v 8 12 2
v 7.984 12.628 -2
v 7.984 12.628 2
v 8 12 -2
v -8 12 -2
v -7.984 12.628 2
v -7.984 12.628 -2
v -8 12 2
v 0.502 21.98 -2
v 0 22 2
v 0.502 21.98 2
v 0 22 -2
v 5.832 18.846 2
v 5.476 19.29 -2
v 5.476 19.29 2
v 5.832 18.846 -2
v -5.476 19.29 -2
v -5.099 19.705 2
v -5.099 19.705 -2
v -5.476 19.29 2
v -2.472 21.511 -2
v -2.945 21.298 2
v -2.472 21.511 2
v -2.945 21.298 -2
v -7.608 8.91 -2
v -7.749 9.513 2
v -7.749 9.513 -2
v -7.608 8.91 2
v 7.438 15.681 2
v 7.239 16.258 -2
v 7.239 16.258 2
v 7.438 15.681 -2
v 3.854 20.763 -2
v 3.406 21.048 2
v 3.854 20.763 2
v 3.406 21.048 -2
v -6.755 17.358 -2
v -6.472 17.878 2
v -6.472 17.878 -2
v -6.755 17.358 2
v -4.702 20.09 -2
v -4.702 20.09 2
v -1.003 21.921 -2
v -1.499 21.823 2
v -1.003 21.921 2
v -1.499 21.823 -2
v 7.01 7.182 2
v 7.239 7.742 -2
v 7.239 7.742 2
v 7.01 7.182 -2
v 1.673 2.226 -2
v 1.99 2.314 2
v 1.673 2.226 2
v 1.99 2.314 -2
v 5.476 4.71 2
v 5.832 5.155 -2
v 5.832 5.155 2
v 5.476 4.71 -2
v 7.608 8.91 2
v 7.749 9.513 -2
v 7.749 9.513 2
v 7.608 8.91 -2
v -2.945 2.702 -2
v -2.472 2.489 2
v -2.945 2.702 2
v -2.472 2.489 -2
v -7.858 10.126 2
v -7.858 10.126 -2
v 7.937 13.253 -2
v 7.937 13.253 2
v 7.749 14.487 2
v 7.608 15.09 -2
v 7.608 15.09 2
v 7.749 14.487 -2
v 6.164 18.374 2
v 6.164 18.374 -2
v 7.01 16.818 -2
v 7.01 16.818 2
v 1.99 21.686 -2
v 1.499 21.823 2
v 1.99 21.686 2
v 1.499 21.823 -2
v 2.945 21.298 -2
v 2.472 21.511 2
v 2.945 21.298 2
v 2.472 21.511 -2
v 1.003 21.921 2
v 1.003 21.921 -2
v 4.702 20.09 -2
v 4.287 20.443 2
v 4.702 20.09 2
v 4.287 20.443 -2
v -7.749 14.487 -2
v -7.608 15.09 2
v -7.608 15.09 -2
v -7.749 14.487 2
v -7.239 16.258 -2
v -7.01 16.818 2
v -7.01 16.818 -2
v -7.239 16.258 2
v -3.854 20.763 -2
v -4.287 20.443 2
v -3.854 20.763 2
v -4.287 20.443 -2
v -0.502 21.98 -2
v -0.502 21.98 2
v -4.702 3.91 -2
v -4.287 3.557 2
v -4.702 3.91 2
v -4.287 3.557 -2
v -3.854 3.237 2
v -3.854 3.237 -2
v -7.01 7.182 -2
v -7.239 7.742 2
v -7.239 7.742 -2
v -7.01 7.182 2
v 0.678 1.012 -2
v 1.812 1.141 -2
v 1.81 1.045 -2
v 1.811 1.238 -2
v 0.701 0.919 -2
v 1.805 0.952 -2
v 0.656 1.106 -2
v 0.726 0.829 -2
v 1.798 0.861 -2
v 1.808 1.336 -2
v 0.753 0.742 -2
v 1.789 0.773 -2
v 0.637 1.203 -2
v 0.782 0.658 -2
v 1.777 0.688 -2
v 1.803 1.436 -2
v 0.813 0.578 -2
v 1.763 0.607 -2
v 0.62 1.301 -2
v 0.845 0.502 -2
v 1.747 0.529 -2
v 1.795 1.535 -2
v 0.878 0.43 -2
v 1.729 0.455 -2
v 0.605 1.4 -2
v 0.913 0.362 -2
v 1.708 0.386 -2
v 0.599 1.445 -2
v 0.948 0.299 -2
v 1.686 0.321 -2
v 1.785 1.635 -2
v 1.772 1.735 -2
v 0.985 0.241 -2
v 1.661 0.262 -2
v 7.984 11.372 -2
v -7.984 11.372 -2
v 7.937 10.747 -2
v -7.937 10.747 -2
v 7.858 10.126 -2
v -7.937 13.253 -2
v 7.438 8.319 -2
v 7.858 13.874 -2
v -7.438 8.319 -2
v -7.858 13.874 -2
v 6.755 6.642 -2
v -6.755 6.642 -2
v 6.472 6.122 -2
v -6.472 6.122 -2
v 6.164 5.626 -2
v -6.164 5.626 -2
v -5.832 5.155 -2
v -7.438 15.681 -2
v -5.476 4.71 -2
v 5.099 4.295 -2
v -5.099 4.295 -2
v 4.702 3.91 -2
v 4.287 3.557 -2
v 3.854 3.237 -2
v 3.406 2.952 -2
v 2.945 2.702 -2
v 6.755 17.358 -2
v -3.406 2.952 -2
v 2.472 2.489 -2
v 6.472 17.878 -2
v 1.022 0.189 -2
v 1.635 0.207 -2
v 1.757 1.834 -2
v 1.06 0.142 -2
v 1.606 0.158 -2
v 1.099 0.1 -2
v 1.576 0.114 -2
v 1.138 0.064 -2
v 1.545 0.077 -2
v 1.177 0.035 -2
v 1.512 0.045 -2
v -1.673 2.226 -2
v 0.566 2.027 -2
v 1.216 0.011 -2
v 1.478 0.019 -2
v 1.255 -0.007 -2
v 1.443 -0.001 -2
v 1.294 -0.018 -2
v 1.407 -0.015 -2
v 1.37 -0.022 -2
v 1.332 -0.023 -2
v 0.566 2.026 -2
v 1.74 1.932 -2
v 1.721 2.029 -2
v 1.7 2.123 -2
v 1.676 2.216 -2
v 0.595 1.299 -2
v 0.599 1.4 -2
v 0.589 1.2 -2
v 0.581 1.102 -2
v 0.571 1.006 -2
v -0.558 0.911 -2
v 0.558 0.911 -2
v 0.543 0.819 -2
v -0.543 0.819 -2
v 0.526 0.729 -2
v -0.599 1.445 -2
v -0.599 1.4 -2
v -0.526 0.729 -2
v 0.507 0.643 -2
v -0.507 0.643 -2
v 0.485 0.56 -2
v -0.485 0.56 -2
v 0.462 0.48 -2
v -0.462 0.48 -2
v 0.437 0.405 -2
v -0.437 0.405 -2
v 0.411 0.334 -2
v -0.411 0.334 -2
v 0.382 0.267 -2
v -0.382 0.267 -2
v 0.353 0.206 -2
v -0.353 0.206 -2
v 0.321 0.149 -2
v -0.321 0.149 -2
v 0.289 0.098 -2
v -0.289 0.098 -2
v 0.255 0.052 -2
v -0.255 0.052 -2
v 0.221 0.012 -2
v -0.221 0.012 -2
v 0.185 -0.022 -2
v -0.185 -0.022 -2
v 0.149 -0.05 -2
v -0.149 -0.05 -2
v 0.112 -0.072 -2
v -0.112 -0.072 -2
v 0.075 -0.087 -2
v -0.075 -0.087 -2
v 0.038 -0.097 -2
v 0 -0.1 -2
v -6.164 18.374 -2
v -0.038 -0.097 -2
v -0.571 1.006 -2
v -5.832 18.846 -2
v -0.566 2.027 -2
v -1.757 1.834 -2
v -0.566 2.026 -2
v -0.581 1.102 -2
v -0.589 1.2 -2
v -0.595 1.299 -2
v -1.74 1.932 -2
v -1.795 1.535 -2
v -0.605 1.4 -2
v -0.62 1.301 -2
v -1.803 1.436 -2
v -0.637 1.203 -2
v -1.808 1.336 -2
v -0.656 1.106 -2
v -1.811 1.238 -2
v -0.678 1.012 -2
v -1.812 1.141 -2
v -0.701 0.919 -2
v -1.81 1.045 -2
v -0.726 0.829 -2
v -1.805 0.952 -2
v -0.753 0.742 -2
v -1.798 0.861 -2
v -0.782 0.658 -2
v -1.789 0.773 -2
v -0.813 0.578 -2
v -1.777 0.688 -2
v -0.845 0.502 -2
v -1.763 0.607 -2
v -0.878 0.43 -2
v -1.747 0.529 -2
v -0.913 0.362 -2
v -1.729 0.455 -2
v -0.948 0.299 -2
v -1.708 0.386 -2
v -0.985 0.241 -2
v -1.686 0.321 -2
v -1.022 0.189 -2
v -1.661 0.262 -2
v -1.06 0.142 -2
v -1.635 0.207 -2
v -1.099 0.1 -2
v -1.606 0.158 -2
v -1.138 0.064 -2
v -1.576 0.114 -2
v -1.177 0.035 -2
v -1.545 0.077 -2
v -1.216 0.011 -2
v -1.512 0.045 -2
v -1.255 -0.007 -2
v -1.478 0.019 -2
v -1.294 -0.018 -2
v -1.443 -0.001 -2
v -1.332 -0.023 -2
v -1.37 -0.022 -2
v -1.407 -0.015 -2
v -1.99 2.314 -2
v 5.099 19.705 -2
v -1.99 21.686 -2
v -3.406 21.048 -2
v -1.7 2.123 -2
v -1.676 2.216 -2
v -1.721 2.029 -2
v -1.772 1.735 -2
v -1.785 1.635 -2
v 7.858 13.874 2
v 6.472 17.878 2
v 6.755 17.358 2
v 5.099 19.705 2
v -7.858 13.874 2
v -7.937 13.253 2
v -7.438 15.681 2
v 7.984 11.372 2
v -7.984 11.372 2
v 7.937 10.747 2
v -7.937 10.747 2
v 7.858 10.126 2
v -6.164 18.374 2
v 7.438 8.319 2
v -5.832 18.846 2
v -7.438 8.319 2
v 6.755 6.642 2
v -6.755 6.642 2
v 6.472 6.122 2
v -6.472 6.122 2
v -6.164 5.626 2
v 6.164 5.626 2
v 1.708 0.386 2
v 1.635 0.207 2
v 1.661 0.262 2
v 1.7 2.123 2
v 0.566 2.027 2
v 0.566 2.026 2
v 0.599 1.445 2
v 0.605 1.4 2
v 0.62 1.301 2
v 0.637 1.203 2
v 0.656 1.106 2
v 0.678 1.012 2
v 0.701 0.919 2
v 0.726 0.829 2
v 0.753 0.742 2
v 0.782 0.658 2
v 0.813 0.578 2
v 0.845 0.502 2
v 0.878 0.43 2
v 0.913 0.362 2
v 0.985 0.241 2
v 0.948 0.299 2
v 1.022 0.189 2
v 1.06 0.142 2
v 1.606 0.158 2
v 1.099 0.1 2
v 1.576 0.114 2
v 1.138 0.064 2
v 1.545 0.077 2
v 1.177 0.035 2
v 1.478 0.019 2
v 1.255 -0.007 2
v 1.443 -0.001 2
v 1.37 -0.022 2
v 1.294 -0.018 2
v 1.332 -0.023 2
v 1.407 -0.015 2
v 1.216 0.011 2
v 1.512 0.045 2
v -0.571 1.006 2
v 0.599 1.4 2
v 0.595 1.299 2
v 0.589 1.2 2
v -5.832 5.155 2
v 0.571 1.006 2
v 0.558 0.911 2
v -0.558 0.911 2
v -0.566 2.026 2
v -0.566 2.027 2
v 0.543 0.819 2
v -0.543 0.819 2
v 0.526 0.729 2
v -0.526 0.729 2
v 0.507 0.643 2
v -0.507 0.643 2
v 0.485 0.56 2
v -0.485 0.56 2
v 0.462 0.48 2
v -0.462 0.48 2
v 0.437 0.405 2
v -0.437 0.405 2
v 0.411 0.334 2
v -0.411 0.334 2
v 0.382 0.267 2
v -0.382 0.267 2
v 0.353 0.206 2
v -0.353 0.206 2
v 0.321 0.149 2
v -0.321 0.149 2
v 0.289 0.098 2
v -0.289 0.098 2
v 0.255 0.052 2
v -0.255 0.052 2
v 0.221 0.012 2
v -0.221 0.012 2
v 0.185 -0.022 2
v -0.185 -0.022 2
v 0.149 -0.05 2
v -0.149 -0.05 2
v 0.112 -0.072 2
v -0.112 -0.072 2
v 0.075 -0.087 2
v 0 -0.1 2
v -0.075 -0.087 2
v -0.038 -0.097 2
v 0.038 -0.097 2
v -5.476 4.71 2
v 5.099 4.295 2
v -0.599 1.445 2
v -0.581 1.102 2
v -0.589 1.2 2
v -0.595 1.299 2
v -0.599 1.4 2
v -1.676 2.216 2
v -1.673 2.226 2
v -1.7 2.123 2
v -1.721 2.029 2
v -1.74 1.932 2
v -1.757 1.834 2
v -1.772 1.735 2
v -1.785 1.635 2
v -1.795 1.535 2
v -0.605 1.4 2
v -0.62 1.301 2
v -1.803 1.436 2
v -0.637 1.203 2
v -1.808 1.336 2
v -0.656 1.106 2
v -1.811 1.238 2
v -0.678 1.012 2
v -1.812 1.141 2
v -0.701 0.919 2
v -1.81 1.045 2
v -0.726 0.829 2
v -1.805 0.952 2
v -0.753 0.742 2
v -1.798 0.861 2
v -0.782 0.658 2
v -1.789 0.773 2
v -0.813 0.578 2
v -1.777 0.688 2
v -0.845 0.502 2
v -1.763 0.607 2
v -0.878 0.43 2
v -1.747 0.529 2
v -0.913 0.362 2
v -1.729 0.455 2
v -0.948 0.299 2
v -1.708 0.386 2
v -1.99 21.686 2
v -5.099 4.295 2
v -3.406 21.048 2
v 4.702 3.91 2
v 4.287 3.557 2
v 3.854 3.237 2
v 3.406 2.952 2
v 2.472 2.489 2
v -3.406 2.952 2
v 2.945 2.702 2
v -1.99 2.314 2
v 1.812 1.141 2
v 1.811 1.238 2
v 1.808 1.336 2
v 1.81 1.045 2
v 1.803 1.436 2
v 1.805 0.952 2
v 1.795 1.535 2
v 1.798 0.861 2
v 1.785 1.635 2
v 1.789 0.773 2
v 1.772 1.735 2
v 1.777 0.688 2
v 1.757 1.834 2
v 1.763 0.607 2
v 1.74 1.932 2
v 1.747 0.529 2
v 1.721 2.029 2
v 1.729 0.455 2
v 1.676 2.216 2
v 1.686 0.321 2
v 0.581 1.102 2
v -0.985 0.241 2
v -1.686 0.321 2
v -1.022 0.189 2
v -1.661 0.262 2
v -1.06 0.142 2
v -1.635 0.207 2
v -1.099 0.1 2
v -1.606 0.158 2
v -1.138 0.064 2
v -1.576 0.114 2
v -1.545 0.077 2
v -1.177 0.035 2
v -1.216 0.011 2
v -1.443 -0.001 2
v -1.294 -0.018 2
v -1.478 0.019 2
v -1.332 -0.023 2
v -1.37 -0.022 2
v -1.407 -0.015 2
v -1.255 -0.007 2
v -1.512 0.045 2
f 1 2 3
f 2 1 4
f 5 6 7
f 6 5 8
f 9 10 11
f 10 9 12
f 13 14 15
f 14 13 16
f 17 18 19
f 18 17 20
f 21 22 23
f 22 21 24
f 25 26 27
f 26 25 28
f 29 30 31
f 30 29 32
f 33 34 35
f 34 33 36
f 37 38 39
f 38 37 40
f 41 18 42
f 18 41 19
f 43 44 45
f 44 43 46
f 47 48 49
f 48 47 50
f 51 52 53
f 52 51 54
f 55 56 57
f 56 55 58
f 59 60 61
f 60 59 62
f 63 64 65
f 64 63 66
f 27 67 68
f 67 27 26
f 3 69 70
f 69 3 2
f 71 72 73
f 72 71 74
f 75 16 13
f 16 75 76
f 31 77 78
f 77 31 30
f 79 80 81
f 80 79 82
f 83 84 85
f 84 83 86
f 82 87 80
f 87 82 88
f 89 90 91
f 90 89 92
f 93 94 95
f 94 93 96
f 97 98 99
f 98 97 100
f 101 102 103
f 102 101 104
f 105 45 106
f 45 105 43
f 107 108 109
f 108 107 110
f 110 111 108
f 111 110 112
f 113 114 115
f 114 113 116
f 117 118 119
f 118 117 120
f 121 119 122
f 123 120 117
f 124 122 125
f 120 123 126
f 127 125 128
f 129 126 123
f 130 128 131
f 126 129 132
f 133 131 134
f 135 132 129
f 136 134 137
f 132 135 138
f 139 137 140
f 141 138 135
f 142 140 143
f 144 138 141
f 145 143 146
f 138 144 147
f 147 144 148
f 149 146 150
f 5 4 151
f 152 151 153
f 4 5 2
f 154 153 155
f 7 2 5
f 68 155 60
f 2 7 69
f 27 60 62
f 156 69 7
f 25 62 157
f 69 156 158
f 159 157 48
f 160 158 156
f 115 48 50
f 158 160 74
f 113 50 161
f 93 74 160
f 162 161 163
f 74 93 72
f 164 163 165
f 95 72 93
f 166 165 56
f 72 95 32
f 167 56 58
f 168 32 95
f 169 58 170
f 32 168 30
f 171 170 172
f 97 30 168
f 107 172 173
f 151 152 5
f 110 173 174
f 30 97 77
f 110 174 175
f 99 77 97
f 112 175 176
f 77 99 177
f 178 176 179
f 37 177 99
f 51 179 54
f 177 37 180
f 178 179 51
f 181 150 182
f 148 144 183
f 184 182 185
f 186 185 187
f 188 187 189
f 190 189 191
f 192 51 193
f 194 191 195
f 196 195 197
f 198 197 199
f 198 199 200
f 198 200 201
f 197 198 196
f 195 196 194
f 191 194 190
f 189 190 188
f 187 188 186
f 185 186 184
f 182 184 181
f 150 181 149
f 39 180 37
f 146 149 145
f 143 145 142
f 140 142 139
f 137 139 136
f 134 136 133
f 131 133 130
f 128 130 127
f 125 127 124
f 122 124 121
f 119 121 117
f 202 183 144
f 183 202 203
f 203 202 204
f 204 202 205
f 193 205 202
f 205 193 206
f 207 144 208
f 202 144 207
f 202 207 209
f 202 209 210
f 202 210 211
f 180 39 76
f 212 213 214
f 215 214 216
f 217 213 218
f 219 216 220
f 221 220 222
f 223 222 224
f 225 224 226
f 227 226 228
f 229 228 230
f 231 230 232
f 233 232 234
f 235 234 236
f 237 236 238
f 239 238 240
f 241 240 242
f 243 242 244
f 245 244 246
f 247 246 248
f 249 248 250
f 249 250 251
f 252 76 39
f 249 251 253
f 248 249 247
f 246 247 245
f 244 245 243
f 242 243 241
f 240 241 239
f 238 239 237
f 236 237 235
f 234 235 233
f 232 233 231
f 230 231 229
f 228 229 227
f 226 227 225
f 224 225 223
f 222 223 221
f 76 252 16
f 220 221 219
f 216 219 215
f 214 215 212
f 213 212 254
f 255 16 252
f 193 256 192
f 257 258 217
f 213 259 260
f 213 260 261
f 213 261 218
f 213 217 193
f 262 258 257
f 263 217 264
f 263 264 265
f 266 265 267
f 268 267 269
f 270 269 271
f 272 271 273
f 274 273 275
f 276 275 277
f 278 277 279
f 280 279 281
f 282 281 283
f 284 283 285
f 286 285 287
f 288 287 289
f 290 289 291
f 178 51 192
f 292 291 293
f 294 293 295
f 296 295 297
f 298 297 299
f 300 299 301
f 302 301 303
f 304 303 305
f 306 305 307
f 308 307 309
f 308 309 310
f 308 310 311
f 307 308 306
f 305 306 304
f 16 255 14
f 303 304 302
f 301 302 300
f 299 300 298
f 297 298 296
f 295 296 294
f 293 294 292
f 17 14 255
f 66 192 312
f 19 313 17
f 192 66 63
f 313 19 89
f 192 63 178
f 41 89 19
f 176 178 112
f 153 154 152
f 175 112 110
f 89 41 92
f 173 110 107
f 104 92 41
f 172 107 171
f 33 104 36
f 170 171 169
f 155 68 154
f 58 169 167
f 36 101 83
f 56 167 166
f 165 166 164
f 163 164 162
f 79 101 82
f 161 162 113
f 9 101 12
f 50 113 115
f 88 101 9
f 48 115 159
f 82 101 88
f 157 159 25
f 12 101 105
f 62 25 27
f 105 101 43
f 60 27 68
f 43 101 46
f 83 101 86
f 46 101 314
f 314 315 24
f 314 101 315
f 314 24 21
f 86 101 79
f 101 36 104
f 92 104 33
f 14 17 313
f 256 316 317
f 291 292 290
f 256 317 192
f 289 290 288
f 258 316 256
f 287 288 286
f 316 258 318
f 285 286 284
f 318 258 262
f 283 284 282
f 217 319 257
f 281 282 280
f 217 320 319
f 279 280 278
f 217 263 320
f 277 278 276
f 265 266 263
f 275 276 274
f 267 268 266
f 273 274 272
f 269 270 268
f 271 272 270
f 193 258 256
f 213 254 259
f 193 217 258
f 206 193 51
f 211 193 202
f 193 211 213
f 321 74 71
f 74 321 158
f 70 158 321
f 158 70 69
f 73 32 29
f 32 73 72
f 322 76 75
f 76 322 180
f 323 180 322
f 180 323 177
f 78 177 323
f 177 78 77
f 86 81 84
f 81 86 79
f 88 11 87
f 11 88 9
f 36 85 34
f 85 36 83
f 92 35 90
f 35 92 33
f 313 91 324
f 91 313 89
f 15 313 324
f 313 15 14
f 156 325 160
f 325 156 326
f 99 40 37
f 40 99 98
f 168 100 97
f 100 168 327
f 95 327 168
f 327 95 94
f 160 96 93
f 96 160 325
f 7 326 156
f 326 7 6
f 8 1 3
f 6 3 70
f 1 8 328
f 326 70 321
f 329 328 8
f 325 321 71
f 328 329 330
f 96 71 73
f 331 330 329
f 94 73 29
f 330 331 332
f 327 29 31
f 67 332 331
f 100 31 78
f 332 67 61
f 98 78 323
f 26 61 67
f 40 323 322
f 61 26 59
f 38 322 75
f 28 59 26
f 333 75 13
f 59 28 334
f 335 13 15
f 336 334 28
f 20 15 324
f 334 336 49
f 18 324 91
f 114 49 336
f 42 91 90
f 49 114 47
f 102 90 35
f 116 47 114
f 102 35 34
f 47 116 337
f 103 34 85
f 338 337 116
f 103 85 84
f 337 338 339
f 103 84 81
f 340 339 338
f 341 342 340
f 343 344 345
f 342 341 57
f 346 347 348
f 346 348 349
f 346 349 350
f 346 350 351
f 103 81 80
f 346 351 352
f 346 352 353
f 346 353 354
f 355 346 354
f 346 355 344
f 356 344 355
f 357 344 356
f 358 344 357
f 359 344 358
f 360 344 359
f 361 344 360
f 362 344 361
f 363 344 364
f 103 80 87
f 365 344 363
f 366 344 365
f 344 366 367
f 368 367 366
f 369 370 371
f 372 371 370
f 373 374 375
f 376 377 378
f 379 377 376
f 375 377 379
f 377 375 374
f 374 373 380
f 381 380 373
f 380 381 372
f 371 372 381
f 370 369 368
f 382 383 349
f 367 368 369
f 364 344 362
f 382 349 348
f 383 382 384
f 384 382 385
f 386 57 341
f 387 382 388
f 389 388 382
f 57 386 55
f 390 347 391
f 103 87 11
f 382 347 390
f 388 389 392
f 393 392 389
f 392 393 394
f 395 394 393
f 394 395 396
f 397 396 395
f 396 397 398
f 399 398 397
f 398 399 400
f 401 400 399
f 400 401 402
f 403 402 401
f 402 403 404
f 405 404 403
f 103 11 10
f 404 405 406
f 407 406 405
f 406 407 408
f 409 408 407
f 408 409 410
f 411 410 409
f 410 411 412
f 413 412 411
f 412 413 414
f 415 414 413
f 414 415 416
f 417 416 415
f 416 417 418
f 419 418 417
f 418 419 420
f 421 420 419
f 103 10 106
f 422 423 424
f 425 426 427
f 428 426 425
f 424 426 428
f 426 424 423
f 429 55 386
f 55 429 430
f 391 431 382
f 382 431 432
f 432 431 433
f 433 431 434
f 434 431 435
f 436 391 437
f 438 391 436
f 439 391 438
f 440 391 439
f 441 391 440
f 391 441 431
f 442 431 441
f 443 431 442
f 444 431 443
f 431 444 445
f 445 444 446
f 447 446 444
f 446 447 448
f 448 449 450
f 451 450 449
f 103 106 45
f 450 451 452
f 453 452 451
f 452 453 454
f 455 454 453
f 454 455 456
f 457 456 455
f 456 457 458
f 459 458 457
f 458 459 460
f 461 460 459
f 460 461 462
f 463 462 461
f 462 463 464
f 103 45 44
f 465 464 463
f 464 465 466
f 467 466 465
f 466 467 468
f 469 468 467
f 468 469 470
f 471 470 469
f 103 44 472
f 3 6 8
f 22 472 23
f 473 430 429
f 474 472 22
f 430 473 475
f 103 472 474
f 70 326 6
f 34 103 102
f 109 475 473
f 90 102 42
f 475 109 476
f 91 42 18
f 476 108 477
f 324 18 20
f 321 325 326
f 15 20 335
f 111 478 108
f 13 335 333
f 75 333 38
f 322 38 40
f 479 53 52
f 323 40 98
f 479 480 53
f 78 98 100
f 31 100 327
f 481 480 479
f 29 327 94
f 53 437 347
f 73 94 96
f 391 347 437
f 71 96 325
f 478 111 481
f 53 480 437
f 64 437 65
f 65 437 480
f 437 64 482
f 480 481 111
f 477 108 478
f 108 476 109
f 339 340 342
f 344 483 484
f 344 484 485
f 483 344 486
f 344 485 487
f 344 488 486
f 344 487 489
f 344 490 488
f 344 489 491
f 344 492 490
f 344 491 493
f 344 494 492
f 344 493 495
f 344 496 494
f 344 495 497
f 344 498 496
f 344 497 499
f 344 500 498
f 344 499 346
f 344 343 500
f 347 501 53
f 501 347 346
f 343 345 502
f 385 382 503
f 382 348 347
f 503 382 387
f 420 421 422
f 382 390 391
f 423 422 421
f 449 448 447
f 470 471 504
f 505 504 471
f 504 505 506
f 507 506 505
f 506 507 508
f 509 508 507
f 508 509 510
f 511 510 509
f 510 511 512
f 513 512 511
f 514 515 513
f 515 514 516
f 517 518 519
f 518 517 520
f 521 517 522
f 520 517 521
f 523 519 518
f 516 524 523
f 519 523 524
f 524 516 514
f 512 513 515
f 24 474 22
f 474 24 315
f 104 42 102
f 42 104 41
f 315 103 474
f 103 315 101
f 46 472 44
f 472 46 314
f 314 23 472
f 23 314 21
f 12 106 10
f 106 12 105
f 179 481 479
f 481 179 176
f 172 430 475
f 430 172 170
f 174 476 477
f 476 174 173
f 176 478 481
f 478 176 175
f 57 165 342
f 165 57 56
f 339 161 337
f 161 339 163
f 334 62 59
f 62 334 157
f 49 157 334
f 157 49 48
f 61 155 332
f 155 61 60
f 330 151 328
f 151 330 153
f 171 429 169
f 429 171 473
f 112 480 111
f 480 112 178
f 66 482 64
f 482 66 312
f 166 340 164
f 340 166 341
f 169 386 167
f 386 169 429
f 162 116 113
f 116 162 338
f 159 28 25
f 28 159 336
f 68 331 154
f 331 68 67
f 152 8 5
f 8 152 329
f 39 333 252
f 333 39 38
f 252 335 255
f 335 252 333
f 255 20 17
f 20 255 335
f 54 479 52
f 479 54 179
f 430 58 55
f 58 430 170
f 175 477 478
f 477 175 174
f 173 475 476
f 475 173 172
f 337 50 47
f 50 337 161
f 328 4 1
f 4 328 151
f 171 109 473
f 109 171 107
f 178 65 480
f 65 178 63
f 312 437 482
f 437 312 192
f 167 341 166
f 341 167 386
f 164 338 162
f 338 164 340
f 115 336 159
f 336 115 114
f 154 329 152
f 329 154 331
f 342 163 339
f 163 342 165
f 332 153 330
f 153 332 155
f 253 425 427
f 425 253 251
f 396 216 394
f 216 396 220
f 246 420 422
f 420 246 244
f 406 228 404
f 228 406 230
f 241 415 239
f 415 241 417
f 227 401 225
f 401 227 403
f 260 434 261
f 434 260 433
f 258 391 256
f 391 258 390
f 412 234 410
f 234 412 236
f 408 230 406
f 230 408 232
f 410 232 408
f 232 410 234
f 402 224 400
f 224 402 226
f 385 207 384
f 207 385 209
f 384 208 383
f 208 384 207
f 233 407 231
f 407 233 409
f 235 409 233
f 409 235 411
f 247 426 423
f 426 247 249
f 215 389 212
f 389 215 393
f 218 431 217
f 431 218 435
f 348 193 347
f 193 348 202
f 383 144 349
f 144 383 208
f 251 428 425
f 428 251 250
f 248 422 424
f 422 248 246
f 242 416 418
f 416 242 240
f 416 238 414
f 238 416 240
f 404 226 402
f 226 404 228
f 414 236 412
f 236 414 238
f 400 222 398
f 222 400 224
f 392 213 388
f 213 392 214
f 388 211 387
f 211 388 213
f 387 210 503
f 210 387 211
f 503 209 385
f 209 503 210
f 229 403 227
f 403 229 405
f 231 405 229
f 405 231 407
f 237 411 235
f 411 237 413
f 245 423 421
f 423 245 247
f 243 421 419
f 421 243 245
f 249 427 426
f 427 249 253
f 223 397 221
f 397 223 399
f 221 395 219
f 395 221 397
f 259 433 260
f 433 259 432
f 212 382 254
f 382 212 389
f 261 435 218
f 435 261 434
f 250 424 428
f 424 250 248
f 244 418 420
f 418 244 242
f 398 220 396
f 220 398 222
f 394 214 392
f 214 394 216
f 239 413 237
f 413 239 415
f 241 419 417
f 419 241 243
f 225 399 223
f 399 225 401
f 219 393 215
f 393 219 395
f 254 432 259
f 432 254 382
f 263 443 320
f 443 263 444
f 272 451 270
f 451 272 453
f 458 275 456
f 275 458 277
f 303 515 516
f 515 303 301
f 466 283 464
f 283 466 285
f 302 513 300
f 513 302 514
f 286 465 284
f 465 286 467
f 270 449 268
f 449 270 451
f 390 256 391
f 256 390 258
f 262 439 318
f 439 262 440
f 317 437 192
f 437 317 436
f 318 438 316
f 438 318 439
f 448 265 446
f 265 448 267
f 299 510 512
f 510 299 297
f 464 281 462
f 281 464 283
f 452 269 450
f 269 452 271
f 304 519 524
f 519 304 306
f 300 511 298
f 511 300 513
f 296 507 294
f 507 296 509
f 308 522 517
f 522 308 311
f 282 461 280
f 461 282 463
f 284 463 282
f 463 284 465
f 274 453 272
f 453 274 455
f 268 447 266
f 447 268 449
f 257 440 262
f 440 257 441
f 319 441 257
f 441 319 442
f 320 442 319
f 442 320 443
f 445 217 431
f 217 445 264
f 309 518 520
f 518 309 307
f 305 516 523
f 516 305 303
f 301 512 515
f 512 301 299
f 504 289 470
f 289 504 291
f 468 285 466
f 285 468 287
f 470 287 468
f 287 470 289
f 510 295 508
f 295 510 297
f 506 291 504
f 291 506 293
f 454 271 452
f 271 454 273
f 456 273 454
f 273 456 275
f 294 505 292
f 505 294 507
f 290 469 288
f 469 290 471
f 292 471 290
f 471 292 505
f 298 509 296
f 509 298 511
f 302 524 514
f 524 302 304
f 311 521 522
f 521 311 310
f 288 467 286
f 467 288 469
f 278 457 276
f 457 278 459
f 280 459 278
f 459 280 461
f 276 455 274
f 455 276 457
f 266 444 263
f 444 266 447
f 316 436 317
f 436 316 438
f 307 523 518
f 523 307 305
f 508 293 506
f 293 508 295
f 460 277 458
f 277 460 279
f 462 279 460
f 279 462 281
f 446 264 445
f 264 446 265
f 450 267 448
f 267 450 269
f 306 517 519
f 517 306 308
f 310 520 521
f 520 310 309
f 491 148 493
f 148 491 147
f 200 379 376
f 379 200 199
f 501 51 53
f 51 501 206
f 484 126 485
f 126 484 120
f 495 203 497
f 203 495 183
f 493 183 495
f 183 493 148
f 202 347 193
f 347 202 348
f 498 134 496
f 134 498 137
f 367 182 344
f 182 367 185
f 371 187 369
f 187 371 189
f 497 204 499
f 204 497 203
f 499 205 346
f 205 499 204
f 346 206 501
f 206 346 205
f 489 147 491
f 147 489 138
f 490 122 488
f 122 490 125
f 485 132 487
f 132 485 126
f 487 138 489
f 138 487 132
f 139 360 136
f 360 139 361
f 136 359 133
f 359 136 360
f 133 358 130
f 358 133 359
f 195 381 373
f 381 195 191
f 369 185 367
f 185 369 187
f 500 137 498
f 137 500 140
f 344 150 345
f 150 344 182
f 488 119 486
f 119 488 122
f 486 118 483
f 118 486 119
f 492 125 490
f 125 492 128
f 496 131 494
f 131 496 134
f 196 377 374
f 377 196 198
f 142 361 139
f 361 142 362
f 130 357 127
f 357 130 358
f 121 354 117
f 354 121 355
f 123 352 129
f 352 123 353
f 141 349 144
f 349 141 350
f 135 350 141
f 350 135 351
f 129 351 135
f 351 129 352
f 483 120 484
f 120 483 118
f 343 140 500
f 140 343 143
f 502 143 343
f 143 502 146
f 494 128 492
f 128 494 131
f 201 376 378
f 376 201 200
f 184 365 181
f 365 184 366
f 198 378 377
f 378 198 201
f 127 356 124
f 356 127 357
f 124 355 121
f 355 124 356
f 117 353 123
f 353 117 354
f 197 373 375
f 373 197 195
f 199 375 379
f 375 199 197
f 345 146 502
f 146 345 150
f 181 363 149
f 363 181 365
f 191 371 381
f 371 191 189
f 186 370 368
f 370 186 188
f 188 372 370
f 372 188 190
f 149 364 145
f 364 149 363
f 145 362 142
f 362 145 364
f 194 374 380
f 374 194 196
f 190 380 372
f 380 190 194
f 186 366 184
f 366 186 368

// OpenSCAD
module balloon()
{
	union () 
	{
		// balloon
		scale ([0.8, 1, 1]) 
		cylinder (h = 4, r=10, center = true, $fn=100);
		
		// middle knot piece
		knotPiece();

		// left knot piece
		rotate ([0, 0, -6.5])
		knotPiece();
		
		// right knot piece
		rotate ([0, 0, 6.5])
		knotPiece();
	}	
}

module knotPiece()
{
	translate ([0, -10.5, 0]) 
	scale ([0.3, 0.8, 1]) 
	cylinder (h = 4, r=2, center = true, $fn=100);
}

translate ([0, 12, 0])
balloon();
